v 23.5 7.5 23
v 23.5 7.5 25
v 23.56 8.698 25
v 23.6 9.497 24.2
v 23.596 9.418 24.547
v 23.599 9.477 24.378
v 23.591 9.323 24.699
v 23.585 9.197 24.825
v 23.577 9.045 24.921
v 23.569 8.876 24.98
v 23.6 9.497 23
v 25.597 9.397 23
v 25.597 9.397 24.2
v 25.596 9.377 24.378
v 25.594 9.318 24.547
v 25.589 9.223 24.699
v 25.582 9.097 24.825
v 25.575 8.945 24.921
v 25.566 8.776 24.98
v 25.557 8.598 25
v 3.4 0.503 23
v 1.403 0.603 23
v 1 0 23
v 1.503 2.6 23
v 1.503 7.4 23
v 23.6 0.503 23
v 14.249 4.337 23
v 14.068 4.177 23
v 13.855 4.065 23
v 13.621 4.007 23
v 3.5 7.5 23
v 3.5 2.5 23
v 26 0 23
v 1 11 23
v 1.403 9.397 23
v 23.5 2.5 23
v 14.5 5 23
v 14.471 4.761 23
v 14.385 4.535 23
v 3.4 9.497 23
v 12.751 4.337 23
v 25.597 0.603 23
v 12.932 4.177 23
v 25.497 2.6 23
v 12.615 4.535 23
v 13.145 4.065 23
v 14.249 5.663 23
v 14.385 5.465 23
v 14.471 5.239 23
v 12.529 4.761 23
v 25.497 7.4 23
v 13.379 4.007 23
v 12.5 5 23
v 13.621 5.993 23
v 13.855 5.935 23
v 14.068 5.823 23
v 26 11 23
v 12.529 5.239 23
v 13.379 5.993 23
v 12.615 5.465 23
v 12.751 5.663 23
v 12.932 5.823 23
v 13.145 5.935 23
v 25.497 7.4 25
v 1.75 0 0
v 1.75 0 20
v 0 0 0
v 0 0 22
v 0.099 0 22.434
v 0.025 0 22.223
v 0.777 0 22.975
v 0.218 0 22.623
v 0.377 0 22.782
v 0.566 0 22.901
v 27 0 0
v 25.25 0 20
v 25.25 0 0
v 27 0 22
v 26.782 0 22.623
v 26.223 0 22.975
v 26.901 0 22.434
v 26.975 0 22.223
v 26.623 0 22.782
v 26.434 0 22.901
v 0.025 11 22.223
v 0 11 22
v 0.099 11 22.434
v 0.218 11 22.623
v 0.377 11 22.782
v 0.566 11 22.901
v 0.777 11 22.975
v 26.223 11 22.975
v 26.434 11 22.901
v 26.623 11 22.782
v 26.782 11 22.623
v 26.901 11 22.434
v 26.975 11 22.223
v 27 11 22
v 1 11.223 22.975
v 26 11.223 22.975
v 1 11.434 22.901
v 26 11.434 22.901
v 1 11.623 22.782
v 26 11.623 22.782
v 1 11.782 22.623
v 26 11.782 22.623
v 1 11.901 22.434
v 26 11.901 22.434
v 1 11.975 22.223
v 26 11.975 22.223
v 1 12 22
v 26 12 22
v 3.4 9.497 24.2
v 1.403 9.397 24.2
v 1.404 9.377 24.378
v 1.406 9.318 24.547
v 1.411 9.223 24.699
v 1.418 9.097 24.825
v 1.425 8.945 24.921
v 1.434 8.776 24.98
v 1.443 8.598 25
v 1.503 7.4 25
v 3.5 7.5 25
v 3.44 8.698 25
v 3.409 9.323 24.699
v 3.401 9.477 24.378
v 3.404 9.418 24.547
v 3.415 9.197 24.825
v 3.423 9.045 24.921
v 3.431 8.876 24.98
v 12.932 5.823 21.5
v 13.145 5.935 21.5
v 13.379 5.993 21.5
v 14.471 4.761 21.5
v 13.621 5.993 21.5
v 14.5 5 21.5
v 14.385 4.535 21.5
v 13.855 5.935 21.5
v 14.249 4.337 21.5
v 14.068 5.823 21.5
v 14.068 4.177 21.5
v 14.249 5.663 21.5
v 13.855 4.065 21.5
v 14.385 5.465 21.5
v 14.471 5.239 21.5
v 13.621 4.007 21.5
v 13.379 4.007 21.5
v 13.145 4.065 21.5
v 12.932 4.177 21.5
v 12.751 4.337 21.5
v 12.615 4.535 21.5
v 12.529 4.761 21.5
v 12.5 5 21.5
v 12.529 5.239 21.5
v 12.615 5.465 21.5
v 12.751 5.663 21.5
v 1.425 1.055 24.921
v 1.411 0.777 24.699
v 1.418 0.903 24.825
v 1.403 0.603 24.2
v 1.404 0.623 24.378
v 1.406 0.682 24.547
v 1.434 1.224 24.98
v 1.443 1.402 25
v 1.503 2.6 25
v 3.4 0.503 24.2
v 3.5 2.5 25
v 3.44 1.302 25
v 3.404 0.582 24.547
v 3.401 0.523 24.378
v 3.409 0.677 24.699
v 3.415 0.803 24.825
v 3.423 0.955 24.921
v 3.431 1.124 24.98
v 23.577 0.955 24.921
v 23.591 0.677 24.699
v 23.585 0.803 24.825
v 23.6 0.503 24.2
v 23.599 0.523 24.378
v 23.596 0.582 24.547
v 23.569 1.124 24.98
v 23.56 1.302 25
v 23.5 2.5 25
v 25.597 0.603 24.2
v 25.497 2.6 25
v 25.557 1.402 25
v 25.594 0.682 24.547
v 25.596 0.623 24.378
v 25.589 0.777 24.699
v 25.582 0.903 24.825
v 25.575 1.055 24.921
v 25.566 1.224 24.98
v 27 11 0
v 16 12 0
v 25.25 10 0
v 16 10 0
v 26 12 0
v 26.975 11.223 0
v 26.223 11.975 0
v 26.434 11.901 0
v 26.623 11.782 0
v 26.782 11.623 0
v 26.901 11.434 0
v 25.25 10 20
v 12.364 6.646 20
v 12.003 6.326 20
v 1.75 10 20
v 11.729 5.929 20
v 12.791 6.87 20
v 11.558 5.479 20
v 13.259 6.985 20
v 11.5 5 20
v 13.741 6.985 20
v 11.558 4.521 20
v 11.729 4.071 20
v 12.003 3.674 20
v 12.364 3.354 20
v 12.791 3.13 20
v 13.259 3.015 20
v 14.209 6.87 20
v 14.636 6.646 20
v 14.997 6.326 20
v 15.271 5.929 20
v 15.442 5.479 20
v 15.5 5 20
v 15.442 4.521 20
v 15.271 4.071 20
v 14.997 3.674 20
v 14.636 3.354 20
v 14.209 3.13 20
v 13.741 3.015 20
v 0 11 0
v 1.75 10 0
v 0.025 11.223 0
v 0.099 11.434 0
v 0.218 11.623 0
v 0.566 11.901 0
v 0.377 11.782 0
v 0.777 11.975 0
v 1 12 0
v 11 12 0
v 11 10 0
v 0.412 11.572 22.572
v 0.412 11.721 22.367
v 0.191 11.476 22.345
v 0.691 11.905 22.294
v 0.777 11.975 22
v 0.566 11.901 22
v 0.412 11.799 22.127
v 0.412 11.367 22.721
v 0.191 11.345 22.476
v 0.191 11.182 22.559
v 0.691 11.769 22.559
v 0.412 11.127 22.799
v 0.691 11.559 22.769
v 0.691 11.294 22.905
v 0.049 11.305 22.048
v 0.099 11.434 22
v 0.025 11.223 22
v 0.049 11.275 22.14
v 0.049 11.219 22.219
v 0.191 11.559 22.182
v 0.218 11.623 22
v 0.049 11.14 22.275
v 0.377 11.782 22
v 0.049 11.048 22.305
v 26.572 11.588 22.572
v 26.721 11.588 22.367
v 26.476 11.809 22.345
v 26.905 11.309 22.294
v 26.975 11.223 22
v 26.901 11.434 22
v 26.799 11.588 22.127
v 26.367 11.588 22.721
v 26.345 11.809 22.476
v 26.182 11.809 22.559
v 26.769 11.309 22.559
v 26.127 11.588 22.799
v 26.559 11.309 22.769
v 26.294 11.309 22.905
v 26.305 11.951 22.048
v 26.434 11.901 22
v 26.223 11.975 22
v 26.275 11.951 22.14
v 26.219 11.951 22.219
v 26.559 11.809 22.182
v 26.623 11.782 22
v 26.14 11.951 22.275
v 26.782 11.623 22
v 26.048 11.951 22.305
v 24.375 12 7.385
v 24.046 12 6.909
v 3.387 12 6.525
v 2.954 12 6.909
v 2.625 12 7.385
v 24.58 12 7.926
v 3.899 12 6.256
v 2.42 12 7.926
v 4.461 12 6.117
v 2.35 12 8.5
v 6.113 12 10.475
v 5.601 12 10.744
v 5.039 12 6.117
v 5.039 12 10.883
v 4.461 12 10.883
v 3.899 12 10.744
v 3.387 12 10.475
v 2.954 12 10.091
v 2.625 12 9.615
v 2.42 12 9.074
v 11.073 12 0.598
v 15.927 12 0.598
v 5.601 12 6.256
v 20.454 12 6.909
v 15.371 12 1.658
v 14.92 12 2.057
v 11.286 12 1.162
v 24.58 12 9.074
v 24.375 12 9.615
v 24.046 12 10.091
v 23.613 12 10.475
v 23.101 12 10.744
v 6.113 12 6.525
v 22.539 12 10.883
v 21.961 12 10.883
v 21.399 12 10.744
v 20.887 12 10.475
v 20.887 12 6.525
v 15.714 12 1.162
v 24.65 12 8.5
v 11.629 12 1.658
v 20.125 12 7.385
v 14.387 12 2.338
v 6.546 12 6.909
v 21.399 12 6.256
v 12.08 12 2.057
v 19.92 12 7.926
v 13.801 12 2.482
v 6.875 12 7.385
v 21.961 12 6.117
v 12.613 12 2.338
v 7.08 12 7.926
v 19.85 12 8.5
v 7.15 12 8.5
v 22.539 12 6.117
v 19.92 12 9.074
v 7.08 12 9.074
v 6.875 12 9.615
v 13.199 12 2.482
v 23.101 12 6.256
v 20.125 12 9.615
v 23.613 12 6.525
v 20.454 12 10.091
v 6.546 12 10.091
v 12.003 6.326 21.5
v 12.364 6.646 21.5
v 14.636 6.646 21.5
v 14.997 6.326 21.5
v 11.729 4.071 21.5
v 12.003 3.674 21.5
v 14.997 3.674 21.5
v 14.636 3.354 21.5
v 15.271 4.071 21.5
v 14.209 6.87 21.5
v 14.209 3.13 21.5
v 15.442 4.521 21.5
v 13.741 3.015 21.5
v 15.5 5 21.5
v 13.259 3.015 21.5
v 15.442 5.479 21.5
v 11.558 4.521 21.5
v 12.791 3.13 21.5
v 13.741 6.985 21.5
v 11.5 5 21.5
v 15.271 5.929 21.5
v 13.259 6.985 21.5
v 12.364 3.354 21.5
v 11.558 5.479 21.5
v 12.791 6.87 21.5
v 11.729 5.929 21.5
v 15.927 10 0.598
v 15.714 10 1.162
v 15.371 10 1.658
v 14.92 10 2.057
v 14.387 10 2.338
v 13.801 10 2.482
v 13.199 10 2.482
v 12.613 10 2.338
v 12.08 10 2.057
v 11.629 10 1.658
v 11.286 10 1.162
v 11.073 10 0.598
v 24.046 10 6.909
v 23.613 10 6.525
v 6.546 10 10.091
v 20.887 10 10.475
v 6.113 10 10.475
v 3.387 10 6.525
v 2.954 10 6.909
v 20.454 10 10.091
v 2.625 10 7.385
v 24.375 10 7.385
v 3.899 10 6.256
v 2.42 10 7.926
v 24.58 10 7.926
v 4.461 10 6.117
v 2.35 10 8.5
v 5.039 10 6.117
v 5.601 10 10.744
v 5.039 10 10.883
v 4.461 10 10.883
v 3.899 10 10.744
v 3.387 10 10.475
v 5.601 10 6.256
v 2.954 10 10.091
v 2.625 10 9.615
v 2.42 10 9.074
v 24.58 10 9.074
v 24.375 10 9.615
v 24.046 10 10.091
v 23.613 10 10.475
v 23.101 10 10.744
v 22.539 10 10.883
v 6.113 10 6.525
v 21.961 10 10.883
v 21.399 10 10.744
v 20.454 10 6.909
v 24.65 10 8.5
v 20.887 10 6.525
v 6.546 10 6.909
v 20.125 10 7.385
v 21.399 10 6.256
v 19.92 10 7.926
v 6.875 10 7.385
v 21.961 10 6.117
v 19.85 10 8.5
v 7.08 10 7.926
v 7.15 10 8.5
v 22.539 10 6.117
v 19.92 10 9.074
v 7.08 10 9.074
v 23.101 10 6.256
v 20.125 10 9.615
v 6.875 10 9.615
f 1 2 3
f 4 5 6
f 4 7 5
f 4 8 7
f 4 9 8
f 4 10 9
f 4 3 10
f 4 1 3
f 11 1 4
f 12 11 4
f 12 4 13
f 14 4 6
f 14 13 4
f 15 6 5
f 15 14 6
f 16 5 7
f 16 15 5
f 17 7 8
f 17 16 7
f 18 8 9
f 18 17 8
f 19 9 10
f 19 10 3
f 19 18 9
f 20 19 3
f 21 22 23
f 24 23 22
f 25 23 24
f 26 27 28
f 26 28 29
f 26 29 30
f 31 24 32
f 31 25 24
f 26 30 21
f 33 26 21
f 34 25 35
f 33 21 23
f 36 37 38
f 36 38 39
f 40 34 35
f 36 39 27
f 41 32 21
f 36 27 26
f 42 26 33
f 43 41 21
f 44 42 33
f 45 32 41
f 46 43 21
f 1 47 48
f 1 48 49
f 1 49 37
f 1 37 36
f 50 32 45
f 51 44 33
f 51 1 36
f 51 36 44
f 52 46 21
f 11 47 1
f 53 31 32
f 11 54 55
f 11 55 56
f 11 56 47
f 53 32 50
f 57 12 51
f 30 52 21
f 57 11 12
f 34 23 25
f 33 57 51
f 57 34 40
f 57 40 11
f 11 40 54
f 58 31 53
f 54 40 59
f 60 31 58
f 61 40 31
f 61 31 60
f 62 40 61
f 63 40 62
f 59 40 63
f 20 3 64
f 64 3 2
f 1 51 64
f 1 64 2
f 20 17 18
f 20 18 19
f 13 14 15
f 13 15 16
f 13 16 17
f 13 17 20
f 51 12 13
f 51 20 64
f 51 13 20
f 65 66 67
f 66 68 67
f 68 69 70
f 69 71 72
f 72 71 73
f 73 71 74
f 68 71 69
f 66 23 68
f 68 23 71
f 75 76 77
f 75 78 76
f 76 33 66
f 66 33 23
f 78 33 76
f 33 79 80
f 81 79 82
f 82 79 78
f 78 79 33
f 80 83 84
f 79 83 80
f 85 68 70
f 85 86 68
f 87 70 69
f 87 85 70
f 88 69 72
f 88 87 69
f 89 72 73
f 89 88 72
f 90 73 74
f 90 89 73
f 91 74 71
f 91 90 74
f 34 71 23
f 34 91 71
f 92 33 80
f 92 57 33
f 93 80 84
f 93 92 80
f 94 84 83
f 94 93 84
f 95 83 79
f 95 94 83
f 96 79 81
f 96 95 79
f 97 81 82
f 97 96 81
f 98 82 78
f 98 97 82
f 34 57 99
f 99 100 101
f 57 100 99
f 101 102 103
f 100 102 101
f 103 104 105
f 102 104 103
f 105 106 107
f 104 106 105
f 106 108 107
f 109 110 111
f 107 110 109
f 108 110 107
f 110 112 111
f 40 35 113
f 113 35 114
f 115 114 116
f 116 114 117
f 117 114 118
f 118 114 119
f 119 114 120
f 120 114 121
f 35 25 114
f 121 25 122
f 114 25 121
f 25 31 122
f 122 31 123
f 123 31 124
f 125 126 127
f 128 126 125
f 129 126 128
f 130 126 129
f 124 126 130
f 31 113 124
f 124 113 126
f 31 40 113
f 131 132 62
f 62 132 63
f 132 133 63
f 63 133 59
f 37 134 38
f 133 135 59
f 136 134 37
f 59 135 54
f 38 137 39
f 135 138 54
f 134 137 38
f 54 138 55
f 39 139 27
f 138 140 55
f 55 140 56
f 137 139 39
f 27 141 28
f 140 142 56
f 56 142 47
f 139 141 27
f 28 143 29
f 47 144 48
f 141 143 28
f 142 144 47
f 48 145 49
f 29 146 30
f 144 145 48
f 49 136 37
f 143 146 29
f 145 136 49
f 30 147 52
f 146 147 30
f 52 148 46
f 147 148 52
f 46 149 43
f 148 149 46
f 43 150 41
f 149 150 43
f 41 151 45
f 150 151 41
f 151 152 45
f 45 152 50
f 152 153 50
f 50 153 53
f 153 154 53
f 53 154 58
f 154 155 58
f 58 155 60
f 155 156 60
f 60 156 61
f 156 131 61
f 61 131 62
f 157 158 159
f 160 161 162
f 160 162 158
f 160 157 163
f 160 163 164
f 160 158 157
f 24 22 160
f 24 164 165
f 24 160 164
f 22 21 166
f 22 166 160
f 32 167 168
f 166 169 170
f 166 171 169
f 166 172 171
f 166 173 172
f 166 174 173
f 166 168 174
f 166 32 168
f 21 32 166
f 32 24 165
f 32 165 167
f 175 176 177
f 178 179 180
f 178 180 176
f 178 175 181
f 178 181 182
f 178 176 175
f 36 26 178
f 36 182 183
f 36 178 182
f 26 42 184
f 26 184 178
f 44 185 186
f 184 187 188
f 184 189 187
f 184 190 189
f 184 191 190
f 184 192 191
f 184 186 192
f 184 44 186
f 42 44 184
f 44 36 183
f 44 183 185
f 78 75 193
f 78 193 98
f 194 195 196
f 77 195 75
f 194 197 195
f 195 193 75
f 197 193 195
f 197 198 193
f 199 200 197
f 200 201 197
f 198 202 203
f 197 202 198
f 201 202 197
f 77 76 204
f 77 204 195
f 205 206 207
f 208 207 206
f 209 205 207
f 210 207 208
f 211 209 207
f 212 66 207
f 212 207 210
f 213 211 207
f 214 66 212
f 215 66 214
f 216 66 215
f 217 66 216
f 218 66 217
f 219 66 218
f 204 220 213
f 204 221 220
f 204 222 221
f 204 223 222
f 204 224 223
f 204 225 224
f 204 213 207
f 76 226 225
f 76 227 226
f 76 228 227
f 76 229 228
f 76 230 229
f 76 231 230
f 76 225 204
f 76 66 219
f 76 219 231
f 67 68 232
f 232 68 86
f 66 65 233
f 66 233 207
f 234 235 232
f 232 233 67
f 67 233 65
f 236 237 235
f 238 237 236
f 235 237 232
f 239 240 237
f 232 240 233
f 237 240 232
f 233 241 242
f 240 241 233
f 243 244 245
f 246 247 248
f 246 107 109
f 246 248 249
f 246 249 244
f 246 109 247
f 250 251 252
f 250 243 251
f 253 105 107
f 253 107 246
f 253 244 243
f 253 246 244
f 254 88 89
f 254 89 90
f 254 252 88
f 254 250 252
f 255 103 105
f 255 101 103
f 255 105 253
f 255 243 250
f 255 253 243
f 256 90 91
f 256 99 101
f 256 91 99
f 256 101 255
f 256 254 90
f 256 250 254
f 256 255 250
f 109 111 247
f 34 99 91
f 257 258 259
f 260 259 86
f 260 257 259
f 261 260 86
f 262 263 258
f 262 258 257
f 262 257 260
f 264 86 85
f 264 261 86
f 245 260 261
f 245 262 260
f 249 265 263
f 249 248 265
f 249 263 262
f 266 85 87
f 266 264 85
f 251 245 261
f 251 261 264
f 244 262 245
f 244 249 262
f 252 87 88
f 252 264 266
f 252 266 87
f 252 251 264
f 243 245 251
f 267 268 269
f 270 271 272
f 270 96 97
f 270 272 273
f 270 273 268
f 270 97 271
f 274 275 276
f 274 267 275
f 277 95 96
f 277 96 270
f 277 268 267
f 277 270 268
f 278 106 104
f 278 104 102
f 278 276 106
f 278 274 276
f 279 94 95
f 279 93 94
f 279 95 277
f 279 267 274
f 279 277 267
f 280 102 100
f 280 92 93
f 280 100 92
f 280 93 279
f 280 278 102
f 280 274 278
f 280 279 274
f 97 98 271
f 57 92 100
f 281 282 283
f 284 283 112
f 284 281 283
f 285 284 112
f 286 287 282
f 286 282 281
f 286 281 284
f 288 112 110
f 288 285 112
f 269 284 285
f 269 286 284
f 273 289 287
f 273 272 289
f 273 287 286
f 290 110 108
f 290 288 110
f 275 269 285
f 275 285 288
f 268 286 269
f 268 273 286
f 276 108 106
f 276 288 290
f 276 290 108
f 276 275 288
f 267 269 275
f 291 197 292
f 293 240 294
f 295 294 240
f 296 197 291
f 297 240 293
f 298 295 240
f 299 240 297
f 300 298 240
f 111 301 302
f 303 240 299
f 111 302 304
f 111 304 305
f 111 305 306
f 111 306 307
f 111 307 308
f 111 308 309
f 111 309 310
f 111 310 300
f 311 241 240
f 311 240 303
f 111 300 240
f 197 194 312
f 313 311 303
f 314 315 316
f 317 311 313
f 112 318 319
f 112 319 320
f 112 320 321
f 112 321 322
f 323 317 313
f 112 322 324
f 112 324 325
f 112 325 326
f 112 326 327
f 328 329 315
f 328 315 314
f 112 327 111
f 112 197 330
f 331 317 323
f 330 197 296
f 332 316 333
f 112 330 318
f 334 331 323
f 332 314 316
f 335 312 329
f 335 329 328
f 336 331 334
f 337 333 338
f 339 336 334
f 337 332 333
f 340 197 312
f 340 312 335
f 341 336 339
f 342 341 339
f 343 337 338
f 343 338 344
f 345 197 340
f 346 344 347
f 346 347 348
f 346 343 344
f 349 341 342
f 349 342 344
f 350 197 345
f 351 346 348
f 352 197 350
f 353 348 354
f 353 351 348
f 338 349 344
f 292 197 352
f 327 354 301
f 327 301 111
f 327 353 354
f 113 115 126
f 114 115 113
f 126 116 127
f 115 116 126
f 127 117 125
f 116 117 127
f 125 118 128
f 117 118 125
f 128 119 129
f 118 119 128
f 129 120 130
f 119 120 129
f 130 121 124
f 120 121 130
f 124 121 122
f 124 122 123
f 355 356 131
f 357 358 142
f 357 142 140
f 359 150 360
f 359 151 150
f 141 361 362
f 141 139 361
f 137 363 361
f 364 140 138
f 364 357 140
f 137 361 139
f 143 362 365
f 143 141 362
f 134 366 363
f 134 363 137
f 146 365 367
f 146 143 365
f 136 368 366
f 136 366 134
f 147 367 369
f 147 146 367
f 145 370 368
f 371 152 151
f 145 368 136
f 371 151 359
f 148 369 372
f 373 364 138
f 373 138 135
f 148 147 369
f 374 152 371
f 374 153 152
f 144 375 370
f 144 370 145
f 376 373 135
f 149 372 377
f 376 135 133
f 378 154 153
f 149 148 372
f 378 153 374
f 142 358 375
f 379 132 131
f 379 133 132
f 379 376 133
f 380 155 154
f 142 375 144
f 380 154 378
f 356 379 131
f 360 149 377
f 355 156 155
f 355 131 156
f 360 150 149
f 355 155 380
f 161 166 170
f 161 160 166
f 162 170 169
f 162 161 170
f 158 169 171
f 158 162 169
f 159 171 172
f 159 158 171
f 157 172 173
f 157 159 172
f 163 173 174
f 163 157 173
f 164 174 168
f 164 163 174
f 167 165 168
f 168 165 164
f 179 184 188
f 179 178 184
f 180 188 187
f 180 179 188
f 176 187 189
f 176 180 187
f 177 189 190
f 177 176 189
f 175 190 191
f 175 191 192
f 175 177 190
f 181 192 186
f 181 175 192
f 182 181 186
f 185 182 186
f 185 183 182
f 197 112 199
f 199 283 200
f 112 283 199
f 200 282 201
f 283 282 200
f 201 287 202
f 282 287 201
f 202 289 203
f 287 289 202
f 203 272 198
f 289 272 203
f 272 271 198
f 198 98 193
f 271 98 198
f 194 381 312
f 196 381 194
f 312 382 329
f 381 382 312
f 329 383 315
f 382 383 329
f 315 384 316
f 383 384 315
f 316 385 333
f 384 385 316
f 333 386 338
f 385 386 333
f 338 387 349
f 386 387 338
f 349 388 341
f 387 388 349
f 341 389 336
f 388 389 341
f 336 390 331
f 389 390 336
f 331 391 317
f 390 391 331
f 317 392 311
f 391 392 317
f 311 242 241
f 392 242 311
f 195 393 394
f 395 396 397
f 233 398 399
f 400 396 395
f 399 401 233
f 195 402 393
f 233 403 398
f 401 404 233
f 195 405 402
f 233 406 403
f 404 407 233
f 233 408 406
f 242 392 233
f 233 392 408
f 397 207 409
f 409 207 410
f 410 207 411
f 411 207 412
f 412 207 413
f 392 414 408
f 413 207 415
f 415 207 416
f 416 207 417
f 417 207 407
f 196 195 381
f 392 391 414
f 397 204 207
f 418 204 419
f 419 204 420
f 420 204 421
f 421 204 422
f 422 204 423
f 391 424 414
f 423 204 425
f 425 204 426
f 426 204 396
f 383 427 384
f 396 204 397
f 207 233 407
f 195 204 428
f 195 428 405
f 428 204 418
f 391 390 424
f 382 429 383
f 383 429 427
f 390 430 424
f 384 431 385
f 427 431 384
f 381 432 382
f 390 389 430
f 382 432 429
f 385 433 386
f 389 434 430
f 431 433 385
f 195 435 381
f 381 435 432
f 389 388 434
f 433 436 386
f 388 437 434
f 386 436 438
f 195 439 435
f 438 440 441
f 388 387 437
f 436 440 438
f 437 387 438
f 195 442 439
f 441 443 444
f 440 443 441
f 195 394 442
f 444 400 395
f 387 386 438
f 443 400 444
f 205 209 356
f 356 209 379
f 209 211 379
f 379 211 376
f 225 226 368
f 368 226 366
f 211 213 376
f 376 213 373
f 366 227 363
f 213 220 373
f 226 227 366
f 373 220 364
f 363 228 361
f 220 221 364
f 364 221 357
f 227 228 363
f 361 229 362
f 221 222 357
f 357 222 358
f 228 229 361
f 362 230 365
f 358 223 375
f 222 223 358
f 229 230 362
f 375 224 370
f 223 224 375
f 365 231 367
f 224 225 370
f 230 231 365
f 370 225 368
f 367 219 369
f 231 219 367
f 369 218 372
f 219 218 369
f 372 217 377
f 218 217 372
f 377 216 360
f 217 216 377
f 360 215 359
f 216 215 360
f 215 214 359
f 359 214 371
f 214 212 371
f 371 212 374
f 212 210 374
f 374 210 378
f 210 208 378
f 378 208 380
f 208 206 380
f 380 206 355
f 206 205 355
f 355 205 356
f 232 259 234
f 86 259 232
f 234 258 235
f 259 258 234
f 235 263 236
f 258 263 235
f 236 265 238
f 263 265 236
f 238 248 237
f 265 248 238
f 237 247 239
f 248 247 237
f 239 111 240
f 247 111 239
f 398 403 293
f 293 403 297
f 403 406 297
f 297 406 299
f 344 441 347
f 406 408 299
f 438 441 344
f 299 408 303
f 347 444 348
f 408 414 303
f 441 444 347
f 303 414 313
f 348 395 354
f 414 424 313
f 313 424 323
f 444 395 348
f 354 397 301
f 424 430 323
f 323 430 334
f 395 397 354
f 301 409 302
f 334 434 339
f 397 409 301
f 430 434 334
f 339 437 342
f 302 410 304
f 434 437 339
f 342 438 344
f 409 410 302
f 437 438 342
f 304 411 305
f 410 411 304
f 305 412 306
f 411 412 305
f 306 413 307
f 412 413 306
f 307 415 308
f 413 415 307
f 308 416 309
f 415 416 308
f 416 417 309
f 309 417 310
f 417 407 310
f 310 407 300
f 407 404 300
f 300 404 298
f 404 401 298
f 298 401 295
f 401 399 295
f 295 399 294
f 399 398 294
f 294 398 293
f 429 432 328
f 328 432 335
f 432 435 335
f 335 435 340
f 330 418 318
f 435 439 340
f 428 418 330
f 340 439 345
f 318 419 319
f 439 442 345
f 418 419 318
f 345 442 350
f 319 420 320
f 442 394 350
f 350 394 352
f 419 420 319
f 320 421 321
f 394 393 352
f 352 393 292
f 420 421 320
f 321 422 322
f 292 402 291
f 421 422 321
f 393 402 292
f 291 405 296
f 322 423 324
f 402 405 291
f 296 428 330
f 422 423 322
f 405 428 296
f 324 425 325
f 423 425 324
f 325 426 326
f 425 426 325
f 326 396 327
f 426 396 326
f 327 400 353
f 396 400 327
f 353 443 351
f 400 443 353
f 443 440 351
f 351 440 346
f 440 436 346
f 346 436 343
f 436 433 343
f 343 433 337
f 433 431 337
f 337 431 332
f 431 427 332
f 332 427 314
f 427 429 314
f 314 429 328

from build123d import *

# Parameters (mm, degrees)
BOX_W           = 27
BOX_H           = 12
BOX_DEPTH       = 23
SKETCH_W        = 23.5
SKETCH_H        = 20
POCKET_DEPTH    = 10
SKETCH002_R     = 1
POCKET001_DEPTH = 3.001
SKETCH003_R     = 2
POCKET002_DEPTH = 1.5
SKETCH004_R     = 2.4
POCKET003_DEPTH = 2.001
POCKET004_DEPTH = 2.001
PAD_DEPTH       = 2
FILLET_R        = 1
FILLET001_R     = 0.8


with BuildPart() as part:
    # Box → Box (new body)
    with BuildSketch(Plane.XY):
        with Locations((13.5, 6)):
            Rectangle(BOX_W, BOX_H)
    extrude(amount=BOX_DEPTH)

    # Sketch (on Face3 of BaseFeature) → Pocket (cut)
    with BuildSketch(Plane.XZ):
        with Locations((13.5, 10)):
            Rectangle(SKETCH_W, SKETCH_H)
    extrude(amount=-POCKET_DEPTH, mode=Mode.SUBTRACT)

    # Sketch002 (on Face7 of Pocket) → Pocket001 (cut, through all)
    with BuildSketch(Plane(origin=(0, 0, 20), x_dir=(1, 0, 0), z_dir=(0, 0, -1))):
        with Locations((13.5, -5)):
            Circle(SKETCH002_R)
    extrude(amount=-POCKET001_DEPTH, mode=Mode.SUBTRACT)

    # Sketch003 (on Face7 of Pocket001) → Pocket002 (cut)
    with BuildSketch(Plane(origin=(0, 0, 20), x_dir=(1, 0, 0), z_dir=(0, 0, -1))):
        with Locations((13.5, -5)):
            Circle(SKETCH003_R)
    extrude(amount=-POCKET002_DEPTH, mode=Mode.SUBTRACT)

    # Sketch004 (on Face11 of Pocket002) → Pocket003 (cut, through all)
    with BuildSketch(Plane.XZ.offset(-10)):
        with Locations((4.75, 8.5)):
            Circle(SKETCH004_R)
        with Locations((22.25, 8.5)):
            Circle(SKETCH004_R)
    extrude(amount=-POCKET003_DEPTH, mode=Mode.SUBTRACT)

    # Sketch005 (on Face13 of Pocket003) → Pocket004 (cut, through all)
    with BuildSketch(Plane.XZ.offset(-10)):
        with BuildLine():
            ThreePointArc((16, 0), (13.5, 2.5), (11, 0))
            Line((11, 0), (16, 0))
        make_face()
    extrude(amount=-POCKET004_DEPTH, mode=Mode.SUBTRACT)

    # Sketch006 (on Face3 of Pocket004) → Pad (join)
    with BuildSketch(Plane.XY.offset(23)):
        Polygon((3.4, 9.497498), (1.402502, 9.397498), (1.502502, 7.4), (3.5, 7.5), align=None)
        Polygon((1.502502, 2.6), (3.5, 2.5), (3.4, 0.502502), (1.402502, 0.602502), align=None)
        Polygon((23.5, 2.5), (25.497498, 2.6), (25.597498, 0.602502), (23.6, 0.502502), align=None)
        Polygon((23.6, 9.497498), (25.597498, 9.397498), (25.497498, 7.4), (23.5, 7.5), align=None)
    extrude(amount=PAD_DEPTH)

    # Fillet
    fillet_edges = [part.edges().sort_by_distance(p)[0] for p in [
        (27, 6, 23),
        (27, 12, 11.5),
        (13.5, 12, 23),
        (0, 12, 11.5),
        (0, 6, 23),
    ]]
    fillet(fillet_edges, radius=FILLET_R)

    # Fillet001
    fillet001_edges = [part.edges().sort_by_distance(p)[0] for p in [
        (2.401251, 9.447498, 25),
        (2.401251, 0.552502, 25),
        (24.598749, 9.447498, 25),
        (24.598749, 0.552502, 25),
    ]]
    fillet(fillet001_edges, radius=FILLET001_R)


solid = part.part
